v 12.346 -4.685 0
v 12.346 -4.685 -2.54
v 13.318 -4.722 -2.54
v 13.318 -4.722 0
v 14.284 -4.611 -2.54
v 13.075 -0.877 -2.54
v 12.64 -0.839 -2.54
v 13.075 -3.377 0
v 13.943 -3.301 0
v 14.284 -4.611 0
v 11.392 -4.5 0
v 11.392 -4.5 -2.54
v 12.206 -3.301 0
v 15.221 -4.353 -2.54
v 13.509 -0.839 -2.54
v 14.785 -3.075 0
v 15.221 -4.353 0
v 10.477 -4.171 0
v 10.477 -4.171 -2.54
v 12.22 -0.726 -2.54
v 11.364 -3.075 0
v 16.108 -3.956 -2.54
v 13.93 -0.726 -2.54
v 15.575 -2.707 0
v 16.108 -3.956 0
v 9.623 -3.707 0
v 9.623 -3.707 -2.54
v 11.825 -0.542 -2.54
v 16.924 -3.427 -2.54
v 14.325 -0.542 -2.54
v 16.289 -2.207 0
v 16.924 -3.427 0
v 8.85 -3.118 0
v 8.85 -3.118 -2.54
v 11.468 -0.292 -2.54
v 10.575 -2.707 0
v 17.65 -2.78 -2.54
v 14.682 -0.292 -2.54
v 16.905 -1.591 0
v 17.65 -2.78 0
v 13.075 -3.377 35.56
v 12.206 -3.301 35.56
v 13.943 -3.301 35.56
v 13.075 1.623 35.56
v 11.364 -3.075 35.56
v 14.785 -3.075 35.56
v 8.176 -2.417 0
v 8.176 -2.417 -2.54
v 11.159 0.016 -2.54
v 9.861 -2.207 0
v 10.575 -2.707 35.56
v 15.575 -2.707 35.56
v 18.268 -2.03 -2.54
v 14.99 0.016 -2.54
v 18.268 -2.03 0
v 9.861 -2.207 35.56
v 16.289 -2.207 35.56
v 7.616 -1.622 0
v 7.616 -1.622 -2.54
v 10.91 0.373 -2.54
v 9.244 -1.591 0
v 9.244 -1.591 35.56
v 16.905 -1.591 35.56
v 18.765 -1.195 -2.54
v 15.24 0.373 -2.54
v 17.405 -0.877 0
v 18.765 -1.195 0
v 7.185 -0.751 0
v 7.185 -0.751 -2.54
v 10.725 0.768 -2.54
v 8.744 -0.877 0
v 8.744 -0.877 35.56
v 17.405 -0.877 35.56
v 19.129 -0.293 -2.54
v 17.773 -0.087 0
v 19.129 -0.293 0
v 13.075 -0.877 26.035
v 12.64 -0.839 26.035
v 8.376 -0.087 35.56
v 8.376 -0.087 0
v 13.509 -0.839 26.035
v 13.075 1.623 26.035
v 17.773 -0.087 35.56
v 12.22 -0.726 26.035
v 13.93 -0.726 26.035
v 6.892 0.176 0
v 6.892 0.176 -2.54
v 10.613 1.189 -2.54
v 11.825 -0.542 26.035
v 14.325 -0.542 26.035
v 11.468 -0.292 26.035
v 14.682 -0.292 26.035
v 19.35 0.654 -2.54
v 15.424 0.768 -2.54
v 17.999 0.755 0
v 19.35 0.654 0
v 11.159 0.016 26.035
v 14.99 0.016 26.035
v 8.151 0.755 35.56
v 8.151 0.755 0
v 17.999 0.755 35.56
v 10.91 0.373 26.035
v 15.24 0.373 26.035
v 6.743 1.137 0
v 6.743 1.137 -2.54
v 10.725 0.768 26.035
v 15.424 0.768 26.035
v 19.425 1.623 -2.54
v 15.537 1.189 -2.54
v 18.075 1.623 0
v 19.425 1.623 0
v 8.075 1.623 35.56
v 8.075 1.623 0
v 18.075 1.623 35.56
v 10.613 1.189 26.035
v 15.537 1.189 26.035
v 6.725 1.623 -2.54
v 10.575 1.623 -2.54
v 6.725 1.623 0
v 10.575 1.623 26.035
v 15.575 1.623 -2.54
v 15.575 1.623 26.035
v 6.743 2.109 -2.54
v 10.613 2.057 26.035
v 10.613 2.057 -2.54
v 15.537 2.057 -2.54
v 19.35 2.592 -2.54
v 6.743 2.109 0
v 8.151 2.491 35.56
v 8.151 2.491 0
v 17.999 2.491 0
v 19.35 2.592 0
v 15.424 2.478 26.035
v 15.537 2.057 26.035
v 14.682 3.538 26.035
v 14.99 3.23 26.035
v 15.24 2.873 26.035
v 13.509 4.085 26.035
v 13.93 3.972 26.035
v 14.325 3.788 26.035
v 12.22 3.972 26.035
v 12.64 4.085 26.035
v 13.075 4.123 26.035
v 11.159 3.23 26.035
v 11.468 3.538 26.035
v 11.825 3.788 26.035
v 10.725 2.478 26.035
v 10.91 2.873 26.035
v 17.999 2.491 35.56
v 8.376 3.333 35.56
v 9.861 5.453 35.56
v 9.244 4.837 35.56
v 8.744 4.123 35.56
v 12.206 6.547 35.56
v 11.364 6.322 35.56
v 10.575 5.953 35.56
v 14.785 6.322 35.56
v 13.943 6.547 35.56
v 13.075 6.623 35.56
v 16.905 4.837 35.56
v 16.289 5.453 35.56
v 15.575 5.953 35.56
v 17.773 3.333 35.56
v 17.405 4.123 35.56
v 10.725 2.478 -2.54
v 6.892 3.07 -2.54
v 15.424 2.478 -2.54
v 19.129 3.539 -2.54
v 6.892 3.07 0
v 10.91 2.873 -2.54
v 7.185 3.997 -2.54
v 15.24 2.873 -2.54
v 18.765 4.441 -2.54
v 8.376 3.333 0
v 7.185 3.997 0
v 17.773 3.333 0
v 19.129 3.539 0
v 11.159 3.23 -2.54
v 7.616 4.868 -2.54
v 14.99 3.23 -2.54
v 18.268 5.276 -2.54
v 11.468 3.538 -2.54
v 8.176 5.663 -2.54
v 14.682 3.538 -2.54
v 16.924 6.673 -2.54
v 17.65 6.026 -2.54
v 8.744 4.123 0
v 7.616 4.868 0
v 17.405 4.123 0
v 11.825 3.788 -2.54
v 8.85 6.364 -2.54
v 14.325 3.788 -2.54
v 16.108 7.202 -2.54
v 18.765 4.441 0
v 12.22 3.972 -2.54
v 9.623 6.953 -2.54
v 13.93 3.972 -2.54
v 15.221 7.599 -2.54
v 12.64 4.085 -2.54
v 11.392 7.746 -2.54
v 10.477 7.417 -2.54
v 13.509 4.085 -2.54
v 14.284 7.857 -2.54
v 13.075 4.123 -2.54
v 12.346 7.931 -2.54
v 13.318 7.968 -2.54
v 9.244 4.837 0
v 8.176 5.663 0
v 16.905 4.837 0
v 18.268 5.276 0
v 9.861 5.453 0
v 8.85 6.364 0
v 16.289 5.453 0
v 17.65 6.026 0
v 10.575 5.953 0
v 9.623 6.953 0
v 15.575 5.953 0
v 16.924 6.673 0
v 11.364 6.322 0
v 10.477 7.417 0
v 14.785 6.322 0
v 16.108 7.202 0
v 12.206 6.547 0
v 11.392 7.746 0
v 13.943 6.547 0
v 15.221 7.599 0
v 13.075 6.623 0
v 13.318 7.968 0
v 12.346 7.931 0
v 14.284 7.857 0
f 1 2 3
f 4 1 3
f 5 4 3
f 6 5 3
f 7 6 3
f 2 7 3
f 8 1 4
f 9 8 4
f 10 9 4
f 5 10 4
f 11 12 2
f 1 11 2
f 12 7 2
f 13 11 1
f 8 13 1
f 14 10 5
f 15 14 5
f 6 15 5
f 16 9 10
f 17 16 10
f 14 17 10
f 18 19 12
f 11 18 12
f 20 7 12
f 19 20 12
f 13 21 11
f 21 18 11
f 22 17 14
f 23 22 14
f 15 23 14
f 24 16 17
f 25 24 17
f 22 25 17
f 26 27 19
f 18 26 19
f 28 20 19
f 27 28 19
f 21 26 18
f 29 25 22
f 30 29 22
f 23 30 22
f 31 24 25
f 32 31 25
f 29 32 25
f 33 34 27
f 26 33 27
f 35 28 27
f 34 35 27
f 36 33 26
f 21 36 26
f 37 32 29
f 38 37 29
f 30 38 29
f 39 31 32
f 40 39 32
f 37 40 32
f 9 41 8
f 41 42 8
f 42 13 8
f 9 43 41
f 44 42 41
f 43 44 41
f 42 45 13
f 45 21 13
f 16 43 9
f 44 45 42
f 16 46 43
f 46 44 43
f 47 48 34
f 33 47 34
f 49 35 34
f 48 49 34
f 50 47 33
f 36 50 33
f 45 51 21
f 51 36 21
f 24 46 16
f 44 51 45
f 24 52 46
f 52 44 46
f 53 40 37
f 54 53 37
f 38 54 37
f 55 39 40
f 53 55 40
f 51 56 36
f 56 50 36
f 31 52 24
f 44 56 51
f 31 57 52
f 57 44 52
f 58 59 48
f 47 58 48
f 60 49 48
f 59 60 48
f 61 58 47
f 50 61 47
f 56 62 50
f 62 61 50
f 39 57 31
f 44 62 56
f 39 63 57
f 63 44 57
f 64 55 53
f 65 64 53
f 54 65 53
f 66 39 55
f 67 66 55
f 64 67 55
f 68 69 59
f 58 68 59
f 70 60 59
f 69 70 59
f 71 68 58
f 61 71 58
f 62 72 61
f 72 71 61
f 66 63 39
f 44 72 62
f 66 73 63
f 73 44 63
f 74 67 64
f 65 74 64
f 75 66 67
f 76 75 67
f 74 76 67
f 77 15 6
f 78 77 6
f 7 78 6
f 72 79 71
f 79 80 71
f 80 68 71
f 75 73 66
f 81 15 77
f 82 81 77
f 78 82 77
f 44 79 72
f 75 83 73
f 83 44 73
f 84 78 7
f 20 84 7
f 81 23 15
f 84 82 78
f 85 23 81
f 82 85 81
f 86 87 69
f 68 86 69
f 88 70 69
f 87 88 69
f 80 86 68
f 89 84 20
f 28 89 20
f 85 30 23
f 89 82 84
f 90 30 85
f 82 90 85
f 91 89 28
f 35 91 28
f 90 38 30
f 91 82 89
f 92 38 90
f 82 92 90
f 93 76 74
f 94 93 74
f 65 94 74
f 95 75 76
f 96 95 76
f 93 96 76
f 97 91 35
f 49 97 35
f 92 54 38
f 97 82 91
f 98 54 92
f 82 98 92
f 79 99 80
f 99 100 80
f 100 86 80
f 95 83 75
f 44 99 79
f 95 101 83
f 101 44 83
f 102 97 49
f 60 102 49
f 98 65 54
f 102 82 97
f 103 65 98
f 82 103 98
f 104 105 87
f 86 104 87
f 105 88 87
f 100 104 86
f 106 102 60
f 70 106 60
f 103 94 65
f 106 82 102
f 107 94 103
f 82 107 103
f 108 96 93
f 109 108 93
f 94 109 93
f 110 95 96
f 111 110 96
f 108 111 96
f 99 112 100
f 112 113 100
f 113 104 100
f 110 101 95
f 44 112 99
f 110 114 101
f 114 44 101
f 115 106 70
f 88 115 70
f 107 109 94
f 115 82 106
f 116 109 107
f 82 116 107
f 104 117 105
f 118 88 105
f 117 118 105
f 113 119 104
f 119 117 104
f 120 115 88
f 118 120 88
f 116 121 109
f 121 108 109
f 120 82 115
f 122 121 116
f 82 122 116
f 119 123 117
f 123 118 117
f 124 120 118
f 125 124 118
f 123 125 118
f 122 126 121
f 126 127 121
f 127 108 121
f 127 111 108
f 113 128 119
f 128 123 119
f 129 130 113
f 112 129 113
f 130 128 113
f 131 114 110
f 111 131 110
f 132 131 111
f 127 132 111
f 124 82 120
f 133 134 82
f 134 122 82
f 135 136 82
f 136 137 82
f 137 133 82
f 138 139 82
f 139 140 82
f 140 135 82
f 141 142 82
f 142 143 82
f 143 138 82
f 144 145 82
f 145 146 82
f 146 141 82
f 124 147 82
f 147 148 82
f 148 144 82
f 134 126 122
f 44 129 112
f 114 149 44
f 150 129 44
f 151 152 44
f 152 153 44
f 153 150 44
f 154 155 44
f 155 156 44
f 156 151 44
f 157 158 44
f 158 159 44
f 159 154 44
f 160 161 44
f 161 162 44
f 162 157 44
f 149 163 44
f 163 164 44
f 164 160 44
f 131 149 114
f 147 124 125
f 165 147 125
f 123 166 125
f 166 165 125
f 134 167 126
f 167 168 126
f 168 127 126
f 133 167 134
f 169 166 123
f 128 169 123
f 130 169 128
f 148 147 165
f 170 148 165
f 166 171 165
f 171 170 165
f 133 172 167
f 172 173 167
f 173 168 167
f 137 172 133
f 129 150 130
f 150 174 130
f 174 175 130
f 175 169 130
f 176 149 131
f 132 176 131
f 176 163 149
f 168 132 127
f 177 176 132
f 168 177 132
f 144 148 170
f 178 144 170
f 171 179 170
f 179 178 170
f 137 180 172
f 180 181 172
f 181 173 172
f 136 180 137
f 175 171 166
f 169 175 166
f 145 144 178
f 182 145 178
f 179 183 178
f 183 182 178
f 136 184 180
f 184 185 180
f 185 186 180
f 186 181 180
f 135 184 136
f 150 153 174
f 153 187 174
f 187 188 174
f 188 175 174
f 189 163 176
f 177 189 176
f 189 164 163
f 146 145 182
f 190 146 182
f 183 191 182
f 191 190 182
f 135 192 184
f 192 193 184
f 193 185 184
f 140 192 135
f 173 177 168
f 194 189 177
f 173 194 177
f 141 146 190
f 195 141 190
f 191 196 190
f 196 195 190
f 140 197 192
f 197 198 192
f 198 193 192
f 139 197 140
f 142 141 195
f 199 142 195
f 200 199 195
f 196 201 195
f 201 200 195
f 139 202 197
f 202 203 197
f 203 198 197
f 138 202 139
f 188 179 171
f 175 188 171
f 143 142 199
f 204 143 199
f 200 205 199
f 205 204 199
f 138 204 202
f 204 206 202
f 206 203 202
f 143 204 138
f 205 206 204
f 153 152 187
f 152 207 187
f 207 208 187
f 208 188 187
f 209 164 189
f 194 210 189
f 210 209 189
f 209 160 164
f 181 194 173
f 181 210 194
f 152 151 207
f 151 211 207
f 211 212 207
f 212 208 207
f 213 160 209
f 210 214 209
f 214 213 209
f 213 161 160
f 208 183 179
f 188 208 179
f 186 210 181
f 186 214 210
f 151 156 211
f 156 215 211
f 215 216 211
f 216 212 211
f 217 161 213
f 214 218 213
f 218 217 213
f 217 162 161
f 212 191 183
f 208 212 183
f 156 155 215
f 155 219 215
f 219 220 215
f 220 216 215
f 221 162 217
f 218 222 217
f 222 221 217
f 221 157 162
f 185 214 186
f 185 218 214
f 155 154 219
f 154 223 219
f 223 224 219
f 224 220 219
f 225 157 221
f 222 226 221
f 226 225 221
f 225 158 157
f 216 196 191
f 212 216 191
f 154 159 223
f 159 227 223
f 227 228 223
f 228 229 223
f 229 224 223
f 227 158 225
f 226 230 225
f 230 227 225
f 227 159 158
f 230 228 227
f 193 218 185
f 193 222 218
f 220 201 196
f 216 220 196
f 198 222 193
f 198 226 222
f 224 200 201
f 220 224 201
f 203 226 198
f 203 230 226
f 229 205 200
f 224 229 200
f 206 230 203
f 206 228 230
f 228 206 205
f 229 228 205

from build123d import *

# Parameters (mm, degrees)
SKETCH2_R               = 5
BOSS_EXTRUDE1_DEPTH     = 35.56
CUT_EXTRUDE1_DEPTH      = 25.4
CUT_EXTRUDE1_DEPTH_BACK = 1
SKETCH3_R               = 6.35
BOSS_EXTRUDE2_DEPTH     = 2.54
CUT_EXTRUDE2_DEPTH      = 2.54
SKETCH5_R               = 2.5
CUT_EXTRUDE3_DEPTH      = 28.575


with BuildPart() as part:
    # Sketch2 → Boss-Extrude1 (new body)
    with BuildSketch(Plane.XY):
        with Locations((13.074576669, 1.623038211)):
            Circle(SKETCH2_R)
    extrude(amount=BOSS_EXTRUDE1_DEPTH)

    # Sketch1 → Cut-Extrude1 (cut, two sides)
    with BuildSketch(Plane.XY) as cut_extrude1_sk:
        with BuildLine():
            Line((15.515382974, 2.163838155), (14.277170381, -0.568711858))
            ThreePointArc((14.277170381, -0.568711858), (10.797451658, 2.654882038), (15.515382974, 2.163838155))
        make_face()
    extrude(amount=CUT_EXTRUDE1_DEPTH, mode=Mode.SUBTRACT)
    extrude(cut_extrude1_sk.sketch, amount=-CUT_EXTRUDE1_DEPTH_BACK, mode=Mode.SUBTRACT)

    # Sketch3 → Boss-Extrude2 (add)
    with BuildSketch(Plane(origin=(0, 0, 0), x_dir=(-1, 0, 0), z_dir=(0, 0, -1))):
        with Locations((-13.074576669, 1.623038211)):
            Circle(SKETCH3_R)
    extrude(amount=BOSS_EXTRUDE2_DEPTH)

    # Sketch4 → Cut-Extrude2 (cut)
    with BuildSketch(Plane(origin=(0, 0, -2.54), x_dir=(-1, 0, 0), z_dir=(0, 0, -1))):
        with BuildLine():
            Line((-15.515382974, 2.163838155), (-14.277170381, -0.568711858))
            ThreePointArc((-14.277170381, -0.568711858), (-10.797451658, 2.654882038), (-15.515382974, 2.163838155))
        make_face()
    extrude(amount=-CUT_EXTRUDE2_DEPTH, mode=Mode.SUBTRACT)

    # Sketch5 → Cut-Extrude3 (cut)
    with BuildSketch(Plane(origin=(0, 0, -2.54), x_dir=(-1, 0, 0), z_dir=(0, 0, -1))):
        with Locations((-13.074576669, 1.623038211)):
            Circle(SKETCH5_R)
    extrude(amount=-CUT_EXTRUDE3_DEPTH, mode=Mode.SUBTRACT)


solid = part.part
